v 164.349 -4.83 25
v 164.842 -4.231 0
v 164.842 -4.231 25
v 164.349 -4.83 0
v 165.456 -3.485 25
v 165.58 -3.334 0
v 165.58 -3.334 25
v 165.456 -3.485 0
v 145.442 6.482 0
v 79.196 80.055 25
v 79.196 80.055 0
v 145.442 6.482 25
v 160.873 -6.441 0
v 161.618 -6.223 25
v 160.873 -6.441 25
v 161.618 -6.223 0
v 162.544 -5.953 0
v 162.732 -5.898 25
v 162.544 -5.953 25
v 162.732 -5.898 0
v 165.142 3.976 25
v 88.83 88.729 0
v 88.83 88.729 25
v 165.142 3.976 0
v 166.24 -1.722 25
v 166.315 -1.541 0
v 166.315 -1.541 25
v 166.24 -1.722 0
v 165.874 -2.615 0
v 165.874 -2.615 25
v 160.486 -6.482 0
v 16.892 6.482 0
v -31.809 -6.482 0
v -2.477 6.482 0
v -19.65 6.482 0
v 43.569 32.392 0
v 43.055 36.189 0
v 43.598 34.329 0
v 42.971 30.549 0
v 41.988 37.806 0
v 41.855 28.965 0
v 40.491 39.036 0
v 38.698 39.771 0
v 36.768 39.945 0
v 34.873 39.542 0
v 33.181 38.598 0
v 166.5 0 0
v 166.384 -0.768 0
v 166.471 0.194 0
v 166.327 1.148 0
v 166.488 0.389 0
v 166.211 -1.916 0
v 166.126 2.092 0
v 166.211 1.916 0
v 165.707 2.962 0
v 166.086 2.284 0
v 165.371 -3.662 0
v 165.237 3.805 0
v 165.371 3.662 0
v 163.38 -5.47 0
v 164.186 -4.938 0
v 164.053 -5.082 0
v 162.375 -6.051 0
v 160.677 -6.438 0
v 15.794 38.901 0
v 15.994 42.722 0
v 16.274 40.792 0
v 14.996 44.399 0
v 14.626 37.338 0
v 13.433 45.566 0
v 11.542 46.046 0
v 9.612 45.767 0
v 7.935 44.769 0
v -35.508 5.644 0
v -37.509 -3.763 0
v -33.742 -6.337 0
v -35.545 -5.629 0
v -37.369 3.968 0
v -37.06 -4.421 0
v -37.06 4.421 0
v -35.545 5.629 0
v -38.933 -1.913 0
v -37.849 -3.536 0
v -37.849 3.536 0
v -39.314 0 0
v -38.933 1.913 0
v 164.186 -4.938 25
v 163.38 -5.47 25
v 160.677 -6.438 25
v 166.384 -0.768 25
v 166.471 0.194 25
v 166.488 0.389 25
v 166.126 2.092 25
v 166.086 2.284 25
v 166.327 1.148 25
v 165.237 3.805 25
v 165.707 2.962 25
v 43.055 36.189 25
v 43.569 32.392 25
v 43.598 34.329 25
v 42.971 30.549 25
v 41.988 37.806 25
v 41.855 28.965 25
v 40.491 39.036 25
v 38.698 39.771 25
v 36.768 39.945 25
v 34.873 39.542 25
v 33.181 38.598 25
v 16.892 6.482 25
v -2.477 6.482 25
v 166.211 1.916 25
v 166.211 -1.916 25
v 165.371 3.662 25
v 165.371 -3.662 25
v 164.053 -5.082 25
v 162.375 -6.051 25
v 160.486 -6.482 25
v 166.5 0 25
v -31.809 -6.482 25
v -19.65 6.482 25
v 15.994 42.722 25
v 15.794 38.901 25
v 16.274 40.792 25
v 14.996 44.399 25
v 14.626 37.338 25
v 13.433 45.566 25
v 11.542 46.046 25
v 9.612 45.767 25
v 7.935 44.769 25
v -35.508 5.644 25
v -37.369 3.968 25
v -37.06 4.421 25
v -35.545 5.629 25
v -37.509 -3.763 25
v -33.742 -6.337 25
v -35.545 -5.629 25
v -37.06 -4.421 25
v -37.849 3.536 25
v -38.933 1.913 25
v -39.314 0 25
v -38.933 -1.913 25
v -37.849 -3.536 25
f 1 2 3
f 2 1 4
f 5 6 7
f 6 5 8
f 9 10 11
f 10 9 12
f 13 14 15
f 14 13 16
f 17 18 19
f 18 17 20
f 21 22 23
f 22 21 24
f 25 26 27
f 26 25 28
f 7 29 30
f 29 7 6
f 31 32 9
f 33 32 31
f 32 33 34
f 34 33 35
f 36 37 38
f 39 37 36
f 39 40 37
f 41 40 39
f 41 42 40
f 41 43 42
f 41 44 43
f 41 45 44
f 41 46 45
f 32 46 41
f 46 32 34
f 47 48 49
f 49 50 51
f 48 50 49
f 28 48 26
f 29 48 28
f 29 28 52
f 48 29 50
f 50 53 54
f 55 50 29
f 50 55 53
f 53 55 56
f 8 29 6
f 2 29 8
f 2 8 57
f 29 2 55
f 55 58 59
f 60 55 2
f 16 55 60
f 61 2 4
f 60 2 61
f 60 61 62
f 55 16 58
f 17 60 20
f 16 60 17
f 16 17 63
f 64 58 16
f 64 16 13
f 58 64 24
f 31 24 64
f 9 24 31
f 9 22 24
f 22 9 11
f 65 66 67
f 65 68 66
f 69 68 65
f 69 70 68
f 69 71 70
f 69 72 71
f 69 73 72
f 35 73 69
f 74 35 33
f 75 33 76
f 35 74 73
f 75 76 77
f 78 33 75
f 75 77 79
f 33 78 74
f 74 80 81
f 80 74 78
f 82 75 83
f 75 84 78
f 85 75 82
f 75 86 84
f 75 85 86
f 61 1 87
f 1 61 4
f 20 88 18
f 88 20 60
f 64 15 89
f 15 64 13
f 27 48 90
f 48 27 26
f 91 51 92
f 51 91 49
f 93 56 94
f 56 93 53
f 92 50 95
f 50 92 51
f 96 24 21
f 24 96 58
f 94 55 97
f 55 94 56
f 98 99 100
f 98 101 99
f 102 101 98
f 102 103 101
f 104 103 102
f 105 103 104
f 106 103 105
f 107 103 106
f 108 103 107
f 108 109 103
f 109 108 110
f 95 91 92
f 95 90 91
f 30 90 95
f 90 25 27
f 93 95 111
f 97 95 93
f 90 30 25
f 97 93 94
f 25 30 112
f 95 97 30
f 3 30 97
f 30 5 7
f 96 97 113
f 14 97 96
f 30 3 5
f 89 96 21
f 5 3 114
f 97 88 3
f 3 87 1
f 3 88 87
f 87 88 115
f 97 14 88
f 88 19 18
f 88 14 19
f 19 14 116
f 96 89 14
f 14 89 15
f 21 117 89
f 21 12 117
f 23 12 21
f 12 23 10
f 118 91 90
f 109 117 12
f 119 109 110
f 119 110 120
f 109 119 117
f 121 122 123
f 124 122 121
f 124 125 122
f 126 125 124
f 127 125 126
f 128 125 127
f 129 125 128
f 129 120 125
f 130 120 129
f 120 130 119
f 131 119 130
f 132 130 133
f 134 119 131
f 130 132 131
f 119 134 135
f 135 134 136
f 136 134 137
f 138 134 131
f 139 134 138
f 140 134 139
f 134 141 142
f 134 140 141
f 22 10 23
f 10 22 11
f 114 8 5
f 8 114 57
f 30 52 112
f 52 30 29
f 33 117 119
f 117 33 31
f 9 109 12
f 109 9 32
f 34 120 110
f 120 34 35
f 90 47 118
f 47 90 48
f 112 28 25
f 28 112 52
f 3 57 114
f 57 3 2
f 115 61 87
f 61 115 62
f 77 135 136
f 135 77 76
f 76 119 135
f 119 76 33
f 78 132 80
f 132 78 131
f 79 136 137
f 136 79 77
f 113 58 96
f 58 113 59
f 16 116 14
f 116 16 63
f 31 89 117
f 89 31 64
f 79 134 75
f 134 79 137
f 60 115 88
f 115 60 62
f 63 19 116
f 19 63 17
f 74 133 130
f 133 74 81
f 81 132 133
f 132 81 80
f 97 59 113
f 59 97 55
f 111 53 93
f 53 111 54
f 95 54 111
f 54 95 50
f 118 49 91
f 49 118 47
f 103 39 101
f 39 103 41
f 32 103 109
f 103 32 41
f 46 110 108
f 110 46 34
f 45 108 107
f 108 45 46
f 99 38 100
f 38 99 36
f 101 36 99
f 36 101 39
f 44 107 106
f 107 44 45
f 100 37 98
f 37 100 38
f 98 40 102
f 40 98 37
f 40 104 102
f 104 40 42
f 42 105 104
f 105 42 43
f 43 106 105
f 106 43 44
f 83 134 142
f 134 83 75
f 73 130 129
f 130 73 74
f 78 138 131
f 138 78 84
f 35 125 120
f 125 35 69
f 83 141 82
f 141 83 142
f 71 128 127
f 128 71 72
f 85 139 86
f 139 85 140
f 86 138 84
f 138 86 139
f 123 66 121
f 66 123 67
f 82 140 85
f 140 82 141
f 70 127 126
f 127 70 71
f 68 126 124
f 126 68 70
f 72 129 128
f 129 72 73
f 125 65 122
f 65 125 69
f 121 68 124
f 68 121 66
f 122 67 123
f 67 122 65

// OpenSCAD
w = 25;
d = 13;
d2 = 10;
l1 = 160;
l2 = 50;

alpha = 42;
beta = alpha;

computer = 14;

module rotate_about_pt(a, pt) translate(pt) rotate(a)
translate(-pt) children();


// Base

hull(){
translate([-(computer+d2)/cos(beta),0,0])
    cylinder(h=w,d=d);
translate([l1,0,0])
    cylinder(h=w,d=d);
}

// support beam
intersection(){
rotate_about_pt([0,0,-(90-alpha)],[l1,0,0])
hull(){
cylinder(h=w,d=d);
translate([l1,0,0])
    cylinder(h=w,d=d);
}

rotate([0,0,alpha])
translate([0,-l1*2+d/2,0])
cube([l1*2,l1*2,w]);
}


// bottom support
hull(){
cylinder(d=d,h=w);
rotate([0,0,alpha])
    translate([l2,0,0])
        cylinder(d=d,h=w);
//translate([l2,0,0])
//    cylinder(d=d,h=w);
}

// top support
translate([-(computer+d/2+d2/2)/cos(beta),0,0])
hull(){
cylinder(d=d2,h=w);
rotate([0,0,beta])
    translate([l2-(computer+d/2+d2/2)*tan(beta)+(computer+d/2+d2/2)/cos(beta),0,0])
        cylinder(d=d2,h=w);
}

// front
//hull(){
//translate([-d/2+d2/2,(computer+d/2+d2/2)/cos(beta),0])
//cylinder(d=d2,h=w);
//translate([-d/2+d2/2,0,0])
//cylinder(d=d2,h=w);
//}
